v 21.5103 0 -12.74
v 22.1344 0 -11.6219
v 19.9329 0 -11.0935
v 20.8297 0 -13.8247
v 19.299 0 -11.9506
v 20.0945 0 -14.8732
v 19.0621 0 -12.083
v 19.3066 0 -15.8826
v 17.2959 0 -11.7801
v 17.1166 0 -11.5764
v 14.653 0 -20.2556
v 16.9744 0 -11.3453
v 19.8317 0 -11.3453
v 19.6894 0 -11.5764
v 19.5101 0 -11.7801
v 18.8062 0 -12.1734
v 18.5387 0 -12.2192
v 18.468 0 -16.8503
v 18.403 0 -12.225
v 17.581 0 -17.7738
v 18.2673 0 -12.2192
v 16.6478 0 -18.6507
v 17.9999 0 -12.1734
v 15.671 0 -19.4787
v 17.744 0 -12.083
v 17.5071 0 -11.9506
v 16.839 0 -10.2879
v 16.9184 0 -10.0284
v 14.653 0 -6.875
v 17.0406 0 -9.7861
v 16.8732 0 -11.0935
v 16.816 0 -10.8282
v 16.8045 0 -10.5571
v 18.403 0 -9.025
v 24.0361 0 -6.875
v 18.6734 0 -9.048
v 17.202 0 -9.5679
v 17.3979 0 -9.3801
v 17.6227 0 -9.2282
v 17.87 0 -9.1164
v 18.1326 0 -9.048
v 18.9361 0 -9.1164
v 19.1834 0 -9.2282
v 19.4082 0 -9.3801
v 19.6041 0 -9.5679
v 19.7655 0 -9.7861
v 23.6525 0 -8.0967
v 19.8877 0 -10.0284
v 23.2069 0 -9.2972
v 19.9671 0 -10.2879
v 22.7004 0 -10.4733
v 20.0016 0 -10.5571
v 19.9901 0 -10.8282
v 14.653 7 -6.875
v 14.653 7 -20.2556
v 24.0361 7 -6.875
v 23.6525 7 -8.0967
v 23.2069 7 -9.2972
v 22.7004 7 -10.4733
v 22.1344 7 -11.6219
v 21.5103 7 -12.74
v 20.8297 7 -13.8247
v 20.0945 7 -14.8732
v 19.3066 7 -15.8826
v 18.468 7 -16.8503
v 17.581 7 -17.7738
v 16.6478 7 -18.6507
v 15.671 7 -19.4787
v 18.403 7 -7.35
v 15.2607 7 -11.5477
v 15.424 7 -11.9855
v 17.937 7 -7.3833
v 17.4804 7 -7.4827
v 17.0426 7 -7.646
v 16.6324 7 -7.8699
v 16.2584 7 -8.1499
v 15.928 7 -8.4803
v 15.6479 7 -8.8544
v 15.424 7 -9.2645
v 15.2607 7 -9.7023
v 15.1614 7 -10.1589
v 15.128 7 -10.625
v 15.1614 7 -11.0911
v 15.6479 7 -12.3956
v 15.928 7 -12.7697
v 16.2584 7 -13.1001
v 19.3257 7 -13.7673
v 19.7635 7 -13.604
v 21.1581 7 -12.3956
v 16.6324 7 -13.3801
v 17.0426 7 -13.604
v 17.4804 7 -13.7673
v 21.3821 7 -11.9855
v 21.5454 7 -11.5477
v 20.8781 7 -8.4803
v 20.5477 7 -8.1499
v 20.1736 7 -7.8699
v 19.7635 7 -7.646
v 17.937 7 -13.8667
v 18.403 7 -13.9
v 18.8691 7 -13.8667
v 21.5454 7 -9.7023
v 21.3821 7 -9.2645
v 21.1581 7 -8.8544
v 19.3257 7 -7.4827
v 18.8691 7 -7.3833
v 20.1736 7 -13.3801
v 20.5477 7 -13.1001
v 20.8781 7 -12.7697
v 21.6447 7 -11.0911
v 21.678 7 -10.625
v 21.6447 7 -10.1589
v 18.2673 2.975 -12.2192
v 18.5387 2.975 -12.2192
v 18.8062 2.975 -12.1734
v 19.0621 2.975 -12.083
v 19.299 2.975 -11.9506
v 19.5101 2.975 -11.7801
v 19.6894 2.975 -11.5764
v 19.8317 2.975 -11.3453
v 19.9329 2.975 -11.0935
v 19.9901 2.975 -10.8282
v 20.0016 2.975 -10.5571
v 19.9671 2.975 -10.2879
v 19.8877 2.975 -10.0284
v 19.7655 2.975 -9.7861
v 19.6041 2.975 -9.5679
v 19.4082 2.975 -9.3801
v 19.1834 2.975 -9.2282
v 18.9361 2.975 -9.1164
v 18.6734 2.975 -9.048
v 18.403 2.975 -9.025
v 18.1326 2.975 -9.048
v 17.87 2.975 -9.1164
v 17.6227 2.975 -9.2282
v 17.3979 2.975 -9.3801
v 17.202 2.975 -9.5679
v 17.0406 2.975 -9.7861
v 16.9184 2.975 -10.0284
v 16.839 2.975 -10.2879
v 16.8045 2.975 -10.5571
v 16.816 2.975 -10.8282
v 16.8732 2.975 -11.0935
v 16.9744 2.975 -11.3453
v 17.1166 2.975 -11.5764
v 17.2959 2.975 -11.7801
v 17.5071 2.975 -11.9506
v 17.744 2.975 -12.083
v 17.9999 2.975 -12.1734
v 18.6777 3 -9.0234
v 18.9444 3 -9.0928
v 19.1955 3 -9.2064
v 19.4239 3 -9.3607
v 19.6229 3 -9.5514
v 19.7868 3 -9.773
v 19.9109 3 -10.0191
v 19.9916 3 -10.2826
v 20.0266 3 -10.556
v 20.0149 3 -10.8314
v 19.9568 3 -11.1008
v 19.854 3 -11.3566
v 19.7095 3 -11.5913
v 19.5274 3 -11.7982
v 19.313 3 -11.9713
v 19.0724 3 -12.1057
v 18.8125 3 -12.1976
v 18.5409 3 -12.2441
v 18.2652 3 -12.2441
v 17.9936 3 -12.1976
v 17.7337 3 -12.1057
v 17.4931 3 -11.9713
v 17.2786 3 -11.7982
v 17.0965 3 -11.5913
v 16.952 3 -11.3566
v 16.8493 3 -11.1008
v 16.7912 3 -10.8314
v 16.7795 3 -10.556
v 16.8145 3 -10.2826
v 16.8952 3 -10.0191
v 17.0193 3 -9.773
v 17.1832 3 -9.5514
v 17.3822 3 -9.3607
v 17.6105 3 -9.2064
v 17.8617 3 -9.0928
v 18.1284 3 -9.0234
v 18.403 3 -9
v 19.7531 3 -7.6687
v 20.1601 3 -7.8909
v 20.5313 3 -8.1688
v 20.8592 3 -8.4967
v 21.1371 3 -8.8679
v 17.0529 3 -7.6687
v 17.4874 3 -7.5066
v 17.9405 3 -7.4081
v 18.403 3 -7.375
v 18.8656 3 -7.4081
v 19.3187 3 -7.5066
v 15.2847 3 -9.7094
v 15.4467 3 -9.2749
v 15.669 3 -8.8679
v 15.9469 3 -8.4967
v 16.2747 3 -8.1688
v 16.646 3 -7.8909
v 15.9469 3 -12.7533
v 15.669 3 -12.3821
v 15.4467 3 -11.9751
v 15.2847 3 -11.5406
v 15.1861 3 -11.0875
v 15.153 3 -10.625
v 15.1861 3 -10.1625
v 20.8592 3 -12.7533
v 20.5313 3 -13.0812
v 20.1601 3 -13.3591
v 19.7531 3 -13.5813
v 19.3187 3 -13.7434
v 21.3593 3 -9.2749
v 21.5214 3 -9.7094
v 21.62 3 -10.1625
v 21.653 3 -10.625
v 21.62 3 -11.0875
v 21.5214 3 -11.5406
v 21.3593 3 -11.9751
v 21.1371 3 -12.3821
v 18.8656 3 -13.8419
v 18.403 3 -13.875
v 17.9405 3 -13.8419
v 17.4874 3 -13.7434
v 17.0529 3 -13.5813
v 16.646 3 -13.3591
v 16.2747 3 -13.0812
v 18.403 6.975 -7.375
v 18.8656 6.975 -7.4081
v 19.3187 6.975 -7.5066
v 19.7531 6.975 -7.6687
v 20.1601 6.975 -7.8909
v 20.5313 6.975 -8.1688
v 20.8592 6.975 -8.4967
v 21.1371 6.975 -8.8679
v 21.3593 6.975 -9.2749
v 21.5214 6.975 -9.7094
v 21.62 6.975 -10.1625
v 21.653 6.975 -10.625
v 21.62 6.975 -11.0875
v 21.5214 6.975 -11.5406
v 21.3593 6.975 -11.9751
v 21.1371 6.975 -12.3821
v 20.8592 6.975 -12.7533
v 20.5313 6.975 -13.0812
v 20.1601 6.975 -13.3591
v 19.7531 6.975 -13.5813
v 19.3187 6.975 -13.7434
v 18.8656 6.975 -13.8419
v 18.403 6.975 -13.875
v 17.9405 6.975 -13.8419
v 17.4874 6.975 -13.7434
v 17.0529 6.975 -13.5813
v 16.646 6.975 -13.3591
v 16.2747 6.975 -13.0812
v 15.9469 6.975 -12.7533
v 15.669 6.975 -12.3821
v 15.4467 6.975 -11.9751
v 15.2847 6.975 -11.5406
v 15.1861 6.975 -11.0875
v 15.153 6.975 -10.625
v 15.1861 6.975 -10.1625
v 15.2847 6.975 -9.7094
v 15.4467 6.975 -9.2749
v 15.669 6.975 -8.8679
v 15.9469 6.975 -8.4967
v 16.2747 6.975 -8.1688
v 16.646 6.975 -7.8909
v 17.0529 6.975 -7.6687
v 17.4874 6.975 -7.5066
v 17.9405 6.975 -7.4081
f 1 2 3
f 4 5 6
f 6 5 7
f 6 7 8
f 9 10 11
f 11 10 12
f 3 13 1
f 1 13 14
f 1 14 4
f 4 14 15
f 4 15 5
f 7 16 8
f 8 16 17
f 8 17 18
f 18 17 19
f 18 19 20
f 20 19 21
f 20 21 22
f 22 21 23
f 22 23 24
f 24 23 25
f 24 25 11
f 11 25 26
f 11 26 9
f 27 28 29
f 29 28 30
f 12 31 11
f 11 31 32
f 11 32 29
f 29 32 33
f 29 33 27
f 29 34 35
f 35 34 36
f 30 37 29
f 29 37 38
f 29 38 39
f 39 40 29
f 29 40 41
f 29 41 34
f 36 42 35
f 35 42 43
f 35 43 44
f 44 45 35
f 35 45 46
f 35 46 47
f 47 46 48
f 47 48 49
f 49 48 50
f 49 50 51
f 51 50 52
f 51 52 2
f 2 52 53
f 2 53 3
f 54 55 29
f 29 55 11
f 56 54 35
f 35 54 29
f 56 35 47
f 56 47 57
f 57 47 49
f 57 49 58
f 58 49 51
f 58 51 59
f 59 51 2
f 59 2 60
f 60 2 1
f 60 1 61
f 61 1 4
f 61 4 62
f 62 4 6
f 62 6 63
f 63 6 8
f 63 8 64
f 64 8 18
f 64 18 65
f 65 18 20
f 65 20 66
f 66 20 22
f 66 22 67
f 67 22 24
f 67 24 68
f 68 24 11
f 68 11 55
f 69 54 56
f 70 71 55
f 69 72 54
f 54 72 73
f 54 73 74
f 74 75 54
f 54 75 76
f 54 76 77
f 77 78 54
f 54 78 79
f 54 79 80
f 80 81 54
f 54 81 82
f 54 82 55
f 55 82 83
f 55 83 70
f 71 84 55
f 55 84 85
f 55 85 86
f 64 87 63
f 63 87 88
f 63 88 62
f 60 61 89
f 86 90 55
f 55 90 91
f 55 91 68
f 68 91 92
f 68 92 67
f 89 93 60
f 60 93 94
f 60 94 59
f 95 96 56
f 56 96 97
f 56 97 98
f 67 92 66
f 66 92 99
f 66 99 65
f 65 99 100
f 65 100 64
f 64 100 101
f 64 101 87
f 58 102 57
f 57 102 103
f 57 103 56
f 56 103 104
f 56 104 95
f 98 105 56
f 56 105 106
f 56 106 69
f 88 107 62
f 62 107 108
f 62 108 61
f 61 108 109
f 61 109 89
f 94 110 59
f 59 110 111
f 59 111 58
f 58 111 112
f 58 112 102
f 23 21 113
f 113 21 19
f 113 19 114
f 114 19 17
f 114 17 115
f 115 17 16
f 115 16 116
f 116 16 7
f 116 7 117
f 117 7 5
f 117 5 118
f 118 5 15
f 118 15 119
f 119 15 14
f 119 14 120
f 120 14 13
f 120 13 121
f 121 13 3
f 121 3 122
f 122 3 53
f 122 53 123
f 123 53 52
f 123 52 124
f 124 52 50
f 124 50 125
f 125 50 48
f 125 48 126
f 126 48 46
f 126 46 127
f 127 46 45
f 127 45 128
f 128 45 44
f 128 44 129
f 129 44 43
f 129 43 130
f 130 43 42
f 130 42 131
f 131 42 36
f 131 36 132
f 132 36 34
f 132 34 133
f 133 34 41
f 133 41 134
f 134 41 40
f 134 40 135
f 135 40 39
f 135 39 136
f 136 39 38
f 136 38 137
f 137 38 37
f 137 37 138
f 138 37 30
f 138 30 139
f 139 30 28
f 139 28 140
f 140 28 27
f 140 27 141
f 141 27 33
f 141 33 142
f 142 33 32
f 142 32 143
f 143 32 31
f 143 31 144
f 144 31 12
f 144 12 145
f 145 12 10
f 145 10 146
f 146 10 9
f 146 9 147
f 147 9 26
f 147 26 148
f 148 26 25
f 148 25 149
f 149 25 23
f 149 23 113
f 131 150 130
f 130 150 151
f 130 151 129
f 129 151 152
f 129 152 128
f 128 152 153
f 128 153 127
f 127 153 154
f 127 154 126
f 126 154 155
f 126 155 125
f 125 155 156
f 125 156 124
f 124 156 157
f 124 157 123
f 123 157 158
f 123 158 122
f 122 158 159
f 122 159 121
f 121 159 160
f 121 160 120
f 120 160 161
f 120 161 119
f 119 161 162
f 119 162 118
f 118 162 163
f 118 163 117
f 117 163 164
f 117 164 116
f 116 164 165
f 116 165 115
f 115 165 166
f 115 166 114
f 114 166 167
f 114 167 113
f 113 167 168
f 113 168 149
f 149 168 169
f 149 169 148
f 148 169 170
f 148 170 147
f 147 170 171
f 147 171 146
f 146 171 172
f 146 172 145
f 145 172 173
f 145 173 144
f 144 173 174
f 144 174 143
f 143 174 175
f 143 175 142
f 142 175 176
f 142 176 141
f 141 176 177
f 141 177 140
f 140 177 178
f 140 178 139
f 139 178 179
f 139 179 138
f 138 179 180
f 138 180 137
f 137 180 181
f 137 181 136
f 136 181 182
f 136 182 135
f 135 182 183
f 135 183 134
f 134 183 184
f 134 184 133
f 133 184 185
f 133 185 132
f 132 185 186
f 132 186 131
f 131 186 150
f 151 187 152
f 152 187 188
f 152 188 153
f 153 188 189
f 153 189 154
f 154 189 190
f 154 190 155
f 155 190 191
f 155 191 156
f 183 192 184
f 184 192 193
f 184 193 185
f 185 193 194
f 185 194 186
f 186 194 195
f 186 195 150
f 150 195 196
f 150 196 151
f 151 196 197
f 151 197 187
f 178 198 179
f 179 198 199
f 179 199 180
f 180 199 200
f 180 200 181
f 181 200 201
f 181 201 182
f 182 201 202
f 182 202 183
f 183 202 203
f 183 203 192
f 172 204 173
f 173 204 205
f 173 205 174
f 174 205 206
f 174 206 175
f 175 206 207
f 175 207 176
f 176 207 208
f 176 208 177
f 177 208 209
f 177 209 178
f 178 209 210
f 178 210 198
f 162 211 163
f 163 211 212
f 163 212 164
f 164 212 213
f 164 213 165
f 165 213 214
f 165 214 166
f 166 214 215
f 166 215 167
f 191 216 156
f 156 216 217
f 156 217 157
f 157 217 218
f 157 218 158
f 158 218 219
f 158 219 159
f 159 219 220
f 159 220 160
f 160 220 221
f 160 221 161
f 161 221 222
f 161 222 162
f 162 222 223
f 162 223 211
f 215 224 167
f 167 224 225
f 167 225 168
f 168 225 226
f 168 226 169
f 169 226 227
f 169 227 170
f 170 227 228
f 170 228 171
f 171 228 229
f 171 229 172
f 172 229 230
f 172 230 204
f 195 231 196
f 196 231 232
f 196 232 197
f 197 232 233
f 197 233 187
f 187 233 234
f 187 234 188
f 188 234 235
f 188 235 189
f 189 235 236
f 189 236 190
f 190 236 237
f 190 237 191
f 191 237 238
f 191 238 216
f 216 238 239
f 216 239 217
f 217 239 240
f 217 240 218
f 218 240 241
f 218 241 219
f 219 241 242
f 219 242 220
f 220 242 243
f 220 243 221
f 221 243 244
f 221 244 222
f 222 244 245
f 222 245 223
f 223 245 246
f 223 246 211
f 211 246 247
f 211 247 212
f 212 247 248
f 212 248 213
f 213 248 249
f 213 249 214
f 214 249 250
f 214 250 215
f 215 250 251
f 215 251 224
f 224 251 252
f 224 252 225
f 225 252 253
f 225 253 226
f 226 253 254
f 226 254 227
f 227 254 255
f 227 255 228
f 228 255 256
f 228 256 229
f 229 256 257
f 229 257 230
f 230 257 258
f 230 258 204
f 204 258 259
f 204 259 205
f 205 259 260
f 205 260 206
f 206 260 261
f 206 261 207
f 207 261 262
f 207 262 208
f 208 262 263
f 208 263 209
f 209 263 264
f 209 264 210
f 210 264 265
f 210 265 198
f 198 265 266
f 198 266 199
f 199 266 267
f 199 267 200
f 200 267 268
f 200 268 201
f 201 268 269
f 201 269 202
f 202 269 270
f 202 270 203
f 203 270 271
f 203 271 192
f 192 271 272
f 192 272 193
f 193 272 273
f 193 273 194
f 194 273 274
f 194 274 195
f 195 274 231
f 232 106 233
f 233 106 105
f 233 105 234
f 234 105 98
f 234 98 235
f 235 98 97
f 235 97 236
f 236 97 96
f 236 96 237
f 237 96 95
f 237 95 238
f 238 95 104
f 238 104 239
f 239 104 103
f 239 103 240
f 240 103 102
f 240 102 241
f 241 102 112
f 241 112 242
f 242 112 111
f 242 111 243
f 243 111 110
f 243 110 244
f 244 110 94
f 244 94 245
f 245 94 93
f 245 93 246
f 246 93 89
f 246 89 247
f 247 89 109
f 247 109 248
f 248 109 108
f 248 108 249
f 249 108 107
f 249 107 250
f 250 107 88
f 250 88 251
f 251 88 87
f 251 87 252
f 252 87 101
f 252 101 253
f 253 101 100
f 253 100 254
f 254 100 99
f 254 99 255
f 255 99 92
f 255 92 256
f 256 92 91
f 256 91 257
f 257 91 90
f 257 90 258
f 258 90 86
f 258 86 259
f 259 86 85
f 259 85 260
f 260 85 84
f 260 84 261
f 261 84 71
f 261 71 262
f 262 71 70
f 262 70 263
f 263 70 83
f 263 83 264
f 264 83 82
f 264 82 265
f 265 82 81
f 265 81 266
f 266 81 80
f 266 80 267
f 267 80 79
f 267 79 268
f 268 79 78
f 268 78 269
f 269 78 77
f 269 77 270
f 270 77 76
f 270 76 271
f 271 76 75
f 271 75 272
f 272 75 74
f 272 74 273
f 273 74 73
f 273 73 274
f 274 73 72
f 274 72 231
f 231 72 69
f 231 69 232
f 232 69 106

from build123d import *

# Parameters (mm, degrees)
BOSS_EXTRUDE2_DEPTH = 7


# Read off the part's stored shape, not the designer's step: CBORE for M3 SHCS1
with BuildPart() as part:
    # Sketch1 → Boss-Extrude2 (new body)
    with BuildSketch(Plane(origin=(0, 0, 0), x_dir=(1, 0, 0), z_dir=(0, 1, 0))):
        with BuildLine():
            Line((14.65303983, 6.875), (24.036105654, 6.875))
            ThreePointArc((24.036105654, 6.875), (20.468816741, 14.353659506), (14.65303983, 20.255577596))
            Line((14.65303983, 20.255577596), (14.65303983, 6.875))
        make_face()
    extrude(amount=BOSS_EXTRUDE2_DEPTH)

    # CBORE for M3 SHCS1 outline → CBORE for M3 SHCS1 (revolve, cut)
    with BuildSketch(Plane(origin=(18.40303983, 0, -10.625), x_dir=(1, 0, 0), z_dir=(0, 0, 1))):
        Polygon((0, 0), (1.6, 0), (1.6, 2.975), (1.625, 3), (3.25, 3), (3.25, 6.975), (3.275, 7), (0, 7), align=None)
    revolve(axis=Axis((18.40303983, 0, -10.625), (0, 1, 0)), mode=Mode.SUBTRACT)


solid = part.part
